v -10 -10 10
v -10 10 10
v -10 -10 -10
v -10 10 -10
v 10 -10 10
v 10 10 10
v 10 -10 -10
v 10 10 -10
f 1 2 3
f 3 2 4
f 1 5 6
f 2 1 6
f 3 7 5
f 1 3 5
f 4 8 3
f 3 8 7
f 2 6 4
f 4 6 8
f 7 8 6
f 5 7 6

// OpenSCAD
$fn=100;
X=20.0;
Y=20.0;
Z=20.0;

cube([X,Y,Z], center = true);
